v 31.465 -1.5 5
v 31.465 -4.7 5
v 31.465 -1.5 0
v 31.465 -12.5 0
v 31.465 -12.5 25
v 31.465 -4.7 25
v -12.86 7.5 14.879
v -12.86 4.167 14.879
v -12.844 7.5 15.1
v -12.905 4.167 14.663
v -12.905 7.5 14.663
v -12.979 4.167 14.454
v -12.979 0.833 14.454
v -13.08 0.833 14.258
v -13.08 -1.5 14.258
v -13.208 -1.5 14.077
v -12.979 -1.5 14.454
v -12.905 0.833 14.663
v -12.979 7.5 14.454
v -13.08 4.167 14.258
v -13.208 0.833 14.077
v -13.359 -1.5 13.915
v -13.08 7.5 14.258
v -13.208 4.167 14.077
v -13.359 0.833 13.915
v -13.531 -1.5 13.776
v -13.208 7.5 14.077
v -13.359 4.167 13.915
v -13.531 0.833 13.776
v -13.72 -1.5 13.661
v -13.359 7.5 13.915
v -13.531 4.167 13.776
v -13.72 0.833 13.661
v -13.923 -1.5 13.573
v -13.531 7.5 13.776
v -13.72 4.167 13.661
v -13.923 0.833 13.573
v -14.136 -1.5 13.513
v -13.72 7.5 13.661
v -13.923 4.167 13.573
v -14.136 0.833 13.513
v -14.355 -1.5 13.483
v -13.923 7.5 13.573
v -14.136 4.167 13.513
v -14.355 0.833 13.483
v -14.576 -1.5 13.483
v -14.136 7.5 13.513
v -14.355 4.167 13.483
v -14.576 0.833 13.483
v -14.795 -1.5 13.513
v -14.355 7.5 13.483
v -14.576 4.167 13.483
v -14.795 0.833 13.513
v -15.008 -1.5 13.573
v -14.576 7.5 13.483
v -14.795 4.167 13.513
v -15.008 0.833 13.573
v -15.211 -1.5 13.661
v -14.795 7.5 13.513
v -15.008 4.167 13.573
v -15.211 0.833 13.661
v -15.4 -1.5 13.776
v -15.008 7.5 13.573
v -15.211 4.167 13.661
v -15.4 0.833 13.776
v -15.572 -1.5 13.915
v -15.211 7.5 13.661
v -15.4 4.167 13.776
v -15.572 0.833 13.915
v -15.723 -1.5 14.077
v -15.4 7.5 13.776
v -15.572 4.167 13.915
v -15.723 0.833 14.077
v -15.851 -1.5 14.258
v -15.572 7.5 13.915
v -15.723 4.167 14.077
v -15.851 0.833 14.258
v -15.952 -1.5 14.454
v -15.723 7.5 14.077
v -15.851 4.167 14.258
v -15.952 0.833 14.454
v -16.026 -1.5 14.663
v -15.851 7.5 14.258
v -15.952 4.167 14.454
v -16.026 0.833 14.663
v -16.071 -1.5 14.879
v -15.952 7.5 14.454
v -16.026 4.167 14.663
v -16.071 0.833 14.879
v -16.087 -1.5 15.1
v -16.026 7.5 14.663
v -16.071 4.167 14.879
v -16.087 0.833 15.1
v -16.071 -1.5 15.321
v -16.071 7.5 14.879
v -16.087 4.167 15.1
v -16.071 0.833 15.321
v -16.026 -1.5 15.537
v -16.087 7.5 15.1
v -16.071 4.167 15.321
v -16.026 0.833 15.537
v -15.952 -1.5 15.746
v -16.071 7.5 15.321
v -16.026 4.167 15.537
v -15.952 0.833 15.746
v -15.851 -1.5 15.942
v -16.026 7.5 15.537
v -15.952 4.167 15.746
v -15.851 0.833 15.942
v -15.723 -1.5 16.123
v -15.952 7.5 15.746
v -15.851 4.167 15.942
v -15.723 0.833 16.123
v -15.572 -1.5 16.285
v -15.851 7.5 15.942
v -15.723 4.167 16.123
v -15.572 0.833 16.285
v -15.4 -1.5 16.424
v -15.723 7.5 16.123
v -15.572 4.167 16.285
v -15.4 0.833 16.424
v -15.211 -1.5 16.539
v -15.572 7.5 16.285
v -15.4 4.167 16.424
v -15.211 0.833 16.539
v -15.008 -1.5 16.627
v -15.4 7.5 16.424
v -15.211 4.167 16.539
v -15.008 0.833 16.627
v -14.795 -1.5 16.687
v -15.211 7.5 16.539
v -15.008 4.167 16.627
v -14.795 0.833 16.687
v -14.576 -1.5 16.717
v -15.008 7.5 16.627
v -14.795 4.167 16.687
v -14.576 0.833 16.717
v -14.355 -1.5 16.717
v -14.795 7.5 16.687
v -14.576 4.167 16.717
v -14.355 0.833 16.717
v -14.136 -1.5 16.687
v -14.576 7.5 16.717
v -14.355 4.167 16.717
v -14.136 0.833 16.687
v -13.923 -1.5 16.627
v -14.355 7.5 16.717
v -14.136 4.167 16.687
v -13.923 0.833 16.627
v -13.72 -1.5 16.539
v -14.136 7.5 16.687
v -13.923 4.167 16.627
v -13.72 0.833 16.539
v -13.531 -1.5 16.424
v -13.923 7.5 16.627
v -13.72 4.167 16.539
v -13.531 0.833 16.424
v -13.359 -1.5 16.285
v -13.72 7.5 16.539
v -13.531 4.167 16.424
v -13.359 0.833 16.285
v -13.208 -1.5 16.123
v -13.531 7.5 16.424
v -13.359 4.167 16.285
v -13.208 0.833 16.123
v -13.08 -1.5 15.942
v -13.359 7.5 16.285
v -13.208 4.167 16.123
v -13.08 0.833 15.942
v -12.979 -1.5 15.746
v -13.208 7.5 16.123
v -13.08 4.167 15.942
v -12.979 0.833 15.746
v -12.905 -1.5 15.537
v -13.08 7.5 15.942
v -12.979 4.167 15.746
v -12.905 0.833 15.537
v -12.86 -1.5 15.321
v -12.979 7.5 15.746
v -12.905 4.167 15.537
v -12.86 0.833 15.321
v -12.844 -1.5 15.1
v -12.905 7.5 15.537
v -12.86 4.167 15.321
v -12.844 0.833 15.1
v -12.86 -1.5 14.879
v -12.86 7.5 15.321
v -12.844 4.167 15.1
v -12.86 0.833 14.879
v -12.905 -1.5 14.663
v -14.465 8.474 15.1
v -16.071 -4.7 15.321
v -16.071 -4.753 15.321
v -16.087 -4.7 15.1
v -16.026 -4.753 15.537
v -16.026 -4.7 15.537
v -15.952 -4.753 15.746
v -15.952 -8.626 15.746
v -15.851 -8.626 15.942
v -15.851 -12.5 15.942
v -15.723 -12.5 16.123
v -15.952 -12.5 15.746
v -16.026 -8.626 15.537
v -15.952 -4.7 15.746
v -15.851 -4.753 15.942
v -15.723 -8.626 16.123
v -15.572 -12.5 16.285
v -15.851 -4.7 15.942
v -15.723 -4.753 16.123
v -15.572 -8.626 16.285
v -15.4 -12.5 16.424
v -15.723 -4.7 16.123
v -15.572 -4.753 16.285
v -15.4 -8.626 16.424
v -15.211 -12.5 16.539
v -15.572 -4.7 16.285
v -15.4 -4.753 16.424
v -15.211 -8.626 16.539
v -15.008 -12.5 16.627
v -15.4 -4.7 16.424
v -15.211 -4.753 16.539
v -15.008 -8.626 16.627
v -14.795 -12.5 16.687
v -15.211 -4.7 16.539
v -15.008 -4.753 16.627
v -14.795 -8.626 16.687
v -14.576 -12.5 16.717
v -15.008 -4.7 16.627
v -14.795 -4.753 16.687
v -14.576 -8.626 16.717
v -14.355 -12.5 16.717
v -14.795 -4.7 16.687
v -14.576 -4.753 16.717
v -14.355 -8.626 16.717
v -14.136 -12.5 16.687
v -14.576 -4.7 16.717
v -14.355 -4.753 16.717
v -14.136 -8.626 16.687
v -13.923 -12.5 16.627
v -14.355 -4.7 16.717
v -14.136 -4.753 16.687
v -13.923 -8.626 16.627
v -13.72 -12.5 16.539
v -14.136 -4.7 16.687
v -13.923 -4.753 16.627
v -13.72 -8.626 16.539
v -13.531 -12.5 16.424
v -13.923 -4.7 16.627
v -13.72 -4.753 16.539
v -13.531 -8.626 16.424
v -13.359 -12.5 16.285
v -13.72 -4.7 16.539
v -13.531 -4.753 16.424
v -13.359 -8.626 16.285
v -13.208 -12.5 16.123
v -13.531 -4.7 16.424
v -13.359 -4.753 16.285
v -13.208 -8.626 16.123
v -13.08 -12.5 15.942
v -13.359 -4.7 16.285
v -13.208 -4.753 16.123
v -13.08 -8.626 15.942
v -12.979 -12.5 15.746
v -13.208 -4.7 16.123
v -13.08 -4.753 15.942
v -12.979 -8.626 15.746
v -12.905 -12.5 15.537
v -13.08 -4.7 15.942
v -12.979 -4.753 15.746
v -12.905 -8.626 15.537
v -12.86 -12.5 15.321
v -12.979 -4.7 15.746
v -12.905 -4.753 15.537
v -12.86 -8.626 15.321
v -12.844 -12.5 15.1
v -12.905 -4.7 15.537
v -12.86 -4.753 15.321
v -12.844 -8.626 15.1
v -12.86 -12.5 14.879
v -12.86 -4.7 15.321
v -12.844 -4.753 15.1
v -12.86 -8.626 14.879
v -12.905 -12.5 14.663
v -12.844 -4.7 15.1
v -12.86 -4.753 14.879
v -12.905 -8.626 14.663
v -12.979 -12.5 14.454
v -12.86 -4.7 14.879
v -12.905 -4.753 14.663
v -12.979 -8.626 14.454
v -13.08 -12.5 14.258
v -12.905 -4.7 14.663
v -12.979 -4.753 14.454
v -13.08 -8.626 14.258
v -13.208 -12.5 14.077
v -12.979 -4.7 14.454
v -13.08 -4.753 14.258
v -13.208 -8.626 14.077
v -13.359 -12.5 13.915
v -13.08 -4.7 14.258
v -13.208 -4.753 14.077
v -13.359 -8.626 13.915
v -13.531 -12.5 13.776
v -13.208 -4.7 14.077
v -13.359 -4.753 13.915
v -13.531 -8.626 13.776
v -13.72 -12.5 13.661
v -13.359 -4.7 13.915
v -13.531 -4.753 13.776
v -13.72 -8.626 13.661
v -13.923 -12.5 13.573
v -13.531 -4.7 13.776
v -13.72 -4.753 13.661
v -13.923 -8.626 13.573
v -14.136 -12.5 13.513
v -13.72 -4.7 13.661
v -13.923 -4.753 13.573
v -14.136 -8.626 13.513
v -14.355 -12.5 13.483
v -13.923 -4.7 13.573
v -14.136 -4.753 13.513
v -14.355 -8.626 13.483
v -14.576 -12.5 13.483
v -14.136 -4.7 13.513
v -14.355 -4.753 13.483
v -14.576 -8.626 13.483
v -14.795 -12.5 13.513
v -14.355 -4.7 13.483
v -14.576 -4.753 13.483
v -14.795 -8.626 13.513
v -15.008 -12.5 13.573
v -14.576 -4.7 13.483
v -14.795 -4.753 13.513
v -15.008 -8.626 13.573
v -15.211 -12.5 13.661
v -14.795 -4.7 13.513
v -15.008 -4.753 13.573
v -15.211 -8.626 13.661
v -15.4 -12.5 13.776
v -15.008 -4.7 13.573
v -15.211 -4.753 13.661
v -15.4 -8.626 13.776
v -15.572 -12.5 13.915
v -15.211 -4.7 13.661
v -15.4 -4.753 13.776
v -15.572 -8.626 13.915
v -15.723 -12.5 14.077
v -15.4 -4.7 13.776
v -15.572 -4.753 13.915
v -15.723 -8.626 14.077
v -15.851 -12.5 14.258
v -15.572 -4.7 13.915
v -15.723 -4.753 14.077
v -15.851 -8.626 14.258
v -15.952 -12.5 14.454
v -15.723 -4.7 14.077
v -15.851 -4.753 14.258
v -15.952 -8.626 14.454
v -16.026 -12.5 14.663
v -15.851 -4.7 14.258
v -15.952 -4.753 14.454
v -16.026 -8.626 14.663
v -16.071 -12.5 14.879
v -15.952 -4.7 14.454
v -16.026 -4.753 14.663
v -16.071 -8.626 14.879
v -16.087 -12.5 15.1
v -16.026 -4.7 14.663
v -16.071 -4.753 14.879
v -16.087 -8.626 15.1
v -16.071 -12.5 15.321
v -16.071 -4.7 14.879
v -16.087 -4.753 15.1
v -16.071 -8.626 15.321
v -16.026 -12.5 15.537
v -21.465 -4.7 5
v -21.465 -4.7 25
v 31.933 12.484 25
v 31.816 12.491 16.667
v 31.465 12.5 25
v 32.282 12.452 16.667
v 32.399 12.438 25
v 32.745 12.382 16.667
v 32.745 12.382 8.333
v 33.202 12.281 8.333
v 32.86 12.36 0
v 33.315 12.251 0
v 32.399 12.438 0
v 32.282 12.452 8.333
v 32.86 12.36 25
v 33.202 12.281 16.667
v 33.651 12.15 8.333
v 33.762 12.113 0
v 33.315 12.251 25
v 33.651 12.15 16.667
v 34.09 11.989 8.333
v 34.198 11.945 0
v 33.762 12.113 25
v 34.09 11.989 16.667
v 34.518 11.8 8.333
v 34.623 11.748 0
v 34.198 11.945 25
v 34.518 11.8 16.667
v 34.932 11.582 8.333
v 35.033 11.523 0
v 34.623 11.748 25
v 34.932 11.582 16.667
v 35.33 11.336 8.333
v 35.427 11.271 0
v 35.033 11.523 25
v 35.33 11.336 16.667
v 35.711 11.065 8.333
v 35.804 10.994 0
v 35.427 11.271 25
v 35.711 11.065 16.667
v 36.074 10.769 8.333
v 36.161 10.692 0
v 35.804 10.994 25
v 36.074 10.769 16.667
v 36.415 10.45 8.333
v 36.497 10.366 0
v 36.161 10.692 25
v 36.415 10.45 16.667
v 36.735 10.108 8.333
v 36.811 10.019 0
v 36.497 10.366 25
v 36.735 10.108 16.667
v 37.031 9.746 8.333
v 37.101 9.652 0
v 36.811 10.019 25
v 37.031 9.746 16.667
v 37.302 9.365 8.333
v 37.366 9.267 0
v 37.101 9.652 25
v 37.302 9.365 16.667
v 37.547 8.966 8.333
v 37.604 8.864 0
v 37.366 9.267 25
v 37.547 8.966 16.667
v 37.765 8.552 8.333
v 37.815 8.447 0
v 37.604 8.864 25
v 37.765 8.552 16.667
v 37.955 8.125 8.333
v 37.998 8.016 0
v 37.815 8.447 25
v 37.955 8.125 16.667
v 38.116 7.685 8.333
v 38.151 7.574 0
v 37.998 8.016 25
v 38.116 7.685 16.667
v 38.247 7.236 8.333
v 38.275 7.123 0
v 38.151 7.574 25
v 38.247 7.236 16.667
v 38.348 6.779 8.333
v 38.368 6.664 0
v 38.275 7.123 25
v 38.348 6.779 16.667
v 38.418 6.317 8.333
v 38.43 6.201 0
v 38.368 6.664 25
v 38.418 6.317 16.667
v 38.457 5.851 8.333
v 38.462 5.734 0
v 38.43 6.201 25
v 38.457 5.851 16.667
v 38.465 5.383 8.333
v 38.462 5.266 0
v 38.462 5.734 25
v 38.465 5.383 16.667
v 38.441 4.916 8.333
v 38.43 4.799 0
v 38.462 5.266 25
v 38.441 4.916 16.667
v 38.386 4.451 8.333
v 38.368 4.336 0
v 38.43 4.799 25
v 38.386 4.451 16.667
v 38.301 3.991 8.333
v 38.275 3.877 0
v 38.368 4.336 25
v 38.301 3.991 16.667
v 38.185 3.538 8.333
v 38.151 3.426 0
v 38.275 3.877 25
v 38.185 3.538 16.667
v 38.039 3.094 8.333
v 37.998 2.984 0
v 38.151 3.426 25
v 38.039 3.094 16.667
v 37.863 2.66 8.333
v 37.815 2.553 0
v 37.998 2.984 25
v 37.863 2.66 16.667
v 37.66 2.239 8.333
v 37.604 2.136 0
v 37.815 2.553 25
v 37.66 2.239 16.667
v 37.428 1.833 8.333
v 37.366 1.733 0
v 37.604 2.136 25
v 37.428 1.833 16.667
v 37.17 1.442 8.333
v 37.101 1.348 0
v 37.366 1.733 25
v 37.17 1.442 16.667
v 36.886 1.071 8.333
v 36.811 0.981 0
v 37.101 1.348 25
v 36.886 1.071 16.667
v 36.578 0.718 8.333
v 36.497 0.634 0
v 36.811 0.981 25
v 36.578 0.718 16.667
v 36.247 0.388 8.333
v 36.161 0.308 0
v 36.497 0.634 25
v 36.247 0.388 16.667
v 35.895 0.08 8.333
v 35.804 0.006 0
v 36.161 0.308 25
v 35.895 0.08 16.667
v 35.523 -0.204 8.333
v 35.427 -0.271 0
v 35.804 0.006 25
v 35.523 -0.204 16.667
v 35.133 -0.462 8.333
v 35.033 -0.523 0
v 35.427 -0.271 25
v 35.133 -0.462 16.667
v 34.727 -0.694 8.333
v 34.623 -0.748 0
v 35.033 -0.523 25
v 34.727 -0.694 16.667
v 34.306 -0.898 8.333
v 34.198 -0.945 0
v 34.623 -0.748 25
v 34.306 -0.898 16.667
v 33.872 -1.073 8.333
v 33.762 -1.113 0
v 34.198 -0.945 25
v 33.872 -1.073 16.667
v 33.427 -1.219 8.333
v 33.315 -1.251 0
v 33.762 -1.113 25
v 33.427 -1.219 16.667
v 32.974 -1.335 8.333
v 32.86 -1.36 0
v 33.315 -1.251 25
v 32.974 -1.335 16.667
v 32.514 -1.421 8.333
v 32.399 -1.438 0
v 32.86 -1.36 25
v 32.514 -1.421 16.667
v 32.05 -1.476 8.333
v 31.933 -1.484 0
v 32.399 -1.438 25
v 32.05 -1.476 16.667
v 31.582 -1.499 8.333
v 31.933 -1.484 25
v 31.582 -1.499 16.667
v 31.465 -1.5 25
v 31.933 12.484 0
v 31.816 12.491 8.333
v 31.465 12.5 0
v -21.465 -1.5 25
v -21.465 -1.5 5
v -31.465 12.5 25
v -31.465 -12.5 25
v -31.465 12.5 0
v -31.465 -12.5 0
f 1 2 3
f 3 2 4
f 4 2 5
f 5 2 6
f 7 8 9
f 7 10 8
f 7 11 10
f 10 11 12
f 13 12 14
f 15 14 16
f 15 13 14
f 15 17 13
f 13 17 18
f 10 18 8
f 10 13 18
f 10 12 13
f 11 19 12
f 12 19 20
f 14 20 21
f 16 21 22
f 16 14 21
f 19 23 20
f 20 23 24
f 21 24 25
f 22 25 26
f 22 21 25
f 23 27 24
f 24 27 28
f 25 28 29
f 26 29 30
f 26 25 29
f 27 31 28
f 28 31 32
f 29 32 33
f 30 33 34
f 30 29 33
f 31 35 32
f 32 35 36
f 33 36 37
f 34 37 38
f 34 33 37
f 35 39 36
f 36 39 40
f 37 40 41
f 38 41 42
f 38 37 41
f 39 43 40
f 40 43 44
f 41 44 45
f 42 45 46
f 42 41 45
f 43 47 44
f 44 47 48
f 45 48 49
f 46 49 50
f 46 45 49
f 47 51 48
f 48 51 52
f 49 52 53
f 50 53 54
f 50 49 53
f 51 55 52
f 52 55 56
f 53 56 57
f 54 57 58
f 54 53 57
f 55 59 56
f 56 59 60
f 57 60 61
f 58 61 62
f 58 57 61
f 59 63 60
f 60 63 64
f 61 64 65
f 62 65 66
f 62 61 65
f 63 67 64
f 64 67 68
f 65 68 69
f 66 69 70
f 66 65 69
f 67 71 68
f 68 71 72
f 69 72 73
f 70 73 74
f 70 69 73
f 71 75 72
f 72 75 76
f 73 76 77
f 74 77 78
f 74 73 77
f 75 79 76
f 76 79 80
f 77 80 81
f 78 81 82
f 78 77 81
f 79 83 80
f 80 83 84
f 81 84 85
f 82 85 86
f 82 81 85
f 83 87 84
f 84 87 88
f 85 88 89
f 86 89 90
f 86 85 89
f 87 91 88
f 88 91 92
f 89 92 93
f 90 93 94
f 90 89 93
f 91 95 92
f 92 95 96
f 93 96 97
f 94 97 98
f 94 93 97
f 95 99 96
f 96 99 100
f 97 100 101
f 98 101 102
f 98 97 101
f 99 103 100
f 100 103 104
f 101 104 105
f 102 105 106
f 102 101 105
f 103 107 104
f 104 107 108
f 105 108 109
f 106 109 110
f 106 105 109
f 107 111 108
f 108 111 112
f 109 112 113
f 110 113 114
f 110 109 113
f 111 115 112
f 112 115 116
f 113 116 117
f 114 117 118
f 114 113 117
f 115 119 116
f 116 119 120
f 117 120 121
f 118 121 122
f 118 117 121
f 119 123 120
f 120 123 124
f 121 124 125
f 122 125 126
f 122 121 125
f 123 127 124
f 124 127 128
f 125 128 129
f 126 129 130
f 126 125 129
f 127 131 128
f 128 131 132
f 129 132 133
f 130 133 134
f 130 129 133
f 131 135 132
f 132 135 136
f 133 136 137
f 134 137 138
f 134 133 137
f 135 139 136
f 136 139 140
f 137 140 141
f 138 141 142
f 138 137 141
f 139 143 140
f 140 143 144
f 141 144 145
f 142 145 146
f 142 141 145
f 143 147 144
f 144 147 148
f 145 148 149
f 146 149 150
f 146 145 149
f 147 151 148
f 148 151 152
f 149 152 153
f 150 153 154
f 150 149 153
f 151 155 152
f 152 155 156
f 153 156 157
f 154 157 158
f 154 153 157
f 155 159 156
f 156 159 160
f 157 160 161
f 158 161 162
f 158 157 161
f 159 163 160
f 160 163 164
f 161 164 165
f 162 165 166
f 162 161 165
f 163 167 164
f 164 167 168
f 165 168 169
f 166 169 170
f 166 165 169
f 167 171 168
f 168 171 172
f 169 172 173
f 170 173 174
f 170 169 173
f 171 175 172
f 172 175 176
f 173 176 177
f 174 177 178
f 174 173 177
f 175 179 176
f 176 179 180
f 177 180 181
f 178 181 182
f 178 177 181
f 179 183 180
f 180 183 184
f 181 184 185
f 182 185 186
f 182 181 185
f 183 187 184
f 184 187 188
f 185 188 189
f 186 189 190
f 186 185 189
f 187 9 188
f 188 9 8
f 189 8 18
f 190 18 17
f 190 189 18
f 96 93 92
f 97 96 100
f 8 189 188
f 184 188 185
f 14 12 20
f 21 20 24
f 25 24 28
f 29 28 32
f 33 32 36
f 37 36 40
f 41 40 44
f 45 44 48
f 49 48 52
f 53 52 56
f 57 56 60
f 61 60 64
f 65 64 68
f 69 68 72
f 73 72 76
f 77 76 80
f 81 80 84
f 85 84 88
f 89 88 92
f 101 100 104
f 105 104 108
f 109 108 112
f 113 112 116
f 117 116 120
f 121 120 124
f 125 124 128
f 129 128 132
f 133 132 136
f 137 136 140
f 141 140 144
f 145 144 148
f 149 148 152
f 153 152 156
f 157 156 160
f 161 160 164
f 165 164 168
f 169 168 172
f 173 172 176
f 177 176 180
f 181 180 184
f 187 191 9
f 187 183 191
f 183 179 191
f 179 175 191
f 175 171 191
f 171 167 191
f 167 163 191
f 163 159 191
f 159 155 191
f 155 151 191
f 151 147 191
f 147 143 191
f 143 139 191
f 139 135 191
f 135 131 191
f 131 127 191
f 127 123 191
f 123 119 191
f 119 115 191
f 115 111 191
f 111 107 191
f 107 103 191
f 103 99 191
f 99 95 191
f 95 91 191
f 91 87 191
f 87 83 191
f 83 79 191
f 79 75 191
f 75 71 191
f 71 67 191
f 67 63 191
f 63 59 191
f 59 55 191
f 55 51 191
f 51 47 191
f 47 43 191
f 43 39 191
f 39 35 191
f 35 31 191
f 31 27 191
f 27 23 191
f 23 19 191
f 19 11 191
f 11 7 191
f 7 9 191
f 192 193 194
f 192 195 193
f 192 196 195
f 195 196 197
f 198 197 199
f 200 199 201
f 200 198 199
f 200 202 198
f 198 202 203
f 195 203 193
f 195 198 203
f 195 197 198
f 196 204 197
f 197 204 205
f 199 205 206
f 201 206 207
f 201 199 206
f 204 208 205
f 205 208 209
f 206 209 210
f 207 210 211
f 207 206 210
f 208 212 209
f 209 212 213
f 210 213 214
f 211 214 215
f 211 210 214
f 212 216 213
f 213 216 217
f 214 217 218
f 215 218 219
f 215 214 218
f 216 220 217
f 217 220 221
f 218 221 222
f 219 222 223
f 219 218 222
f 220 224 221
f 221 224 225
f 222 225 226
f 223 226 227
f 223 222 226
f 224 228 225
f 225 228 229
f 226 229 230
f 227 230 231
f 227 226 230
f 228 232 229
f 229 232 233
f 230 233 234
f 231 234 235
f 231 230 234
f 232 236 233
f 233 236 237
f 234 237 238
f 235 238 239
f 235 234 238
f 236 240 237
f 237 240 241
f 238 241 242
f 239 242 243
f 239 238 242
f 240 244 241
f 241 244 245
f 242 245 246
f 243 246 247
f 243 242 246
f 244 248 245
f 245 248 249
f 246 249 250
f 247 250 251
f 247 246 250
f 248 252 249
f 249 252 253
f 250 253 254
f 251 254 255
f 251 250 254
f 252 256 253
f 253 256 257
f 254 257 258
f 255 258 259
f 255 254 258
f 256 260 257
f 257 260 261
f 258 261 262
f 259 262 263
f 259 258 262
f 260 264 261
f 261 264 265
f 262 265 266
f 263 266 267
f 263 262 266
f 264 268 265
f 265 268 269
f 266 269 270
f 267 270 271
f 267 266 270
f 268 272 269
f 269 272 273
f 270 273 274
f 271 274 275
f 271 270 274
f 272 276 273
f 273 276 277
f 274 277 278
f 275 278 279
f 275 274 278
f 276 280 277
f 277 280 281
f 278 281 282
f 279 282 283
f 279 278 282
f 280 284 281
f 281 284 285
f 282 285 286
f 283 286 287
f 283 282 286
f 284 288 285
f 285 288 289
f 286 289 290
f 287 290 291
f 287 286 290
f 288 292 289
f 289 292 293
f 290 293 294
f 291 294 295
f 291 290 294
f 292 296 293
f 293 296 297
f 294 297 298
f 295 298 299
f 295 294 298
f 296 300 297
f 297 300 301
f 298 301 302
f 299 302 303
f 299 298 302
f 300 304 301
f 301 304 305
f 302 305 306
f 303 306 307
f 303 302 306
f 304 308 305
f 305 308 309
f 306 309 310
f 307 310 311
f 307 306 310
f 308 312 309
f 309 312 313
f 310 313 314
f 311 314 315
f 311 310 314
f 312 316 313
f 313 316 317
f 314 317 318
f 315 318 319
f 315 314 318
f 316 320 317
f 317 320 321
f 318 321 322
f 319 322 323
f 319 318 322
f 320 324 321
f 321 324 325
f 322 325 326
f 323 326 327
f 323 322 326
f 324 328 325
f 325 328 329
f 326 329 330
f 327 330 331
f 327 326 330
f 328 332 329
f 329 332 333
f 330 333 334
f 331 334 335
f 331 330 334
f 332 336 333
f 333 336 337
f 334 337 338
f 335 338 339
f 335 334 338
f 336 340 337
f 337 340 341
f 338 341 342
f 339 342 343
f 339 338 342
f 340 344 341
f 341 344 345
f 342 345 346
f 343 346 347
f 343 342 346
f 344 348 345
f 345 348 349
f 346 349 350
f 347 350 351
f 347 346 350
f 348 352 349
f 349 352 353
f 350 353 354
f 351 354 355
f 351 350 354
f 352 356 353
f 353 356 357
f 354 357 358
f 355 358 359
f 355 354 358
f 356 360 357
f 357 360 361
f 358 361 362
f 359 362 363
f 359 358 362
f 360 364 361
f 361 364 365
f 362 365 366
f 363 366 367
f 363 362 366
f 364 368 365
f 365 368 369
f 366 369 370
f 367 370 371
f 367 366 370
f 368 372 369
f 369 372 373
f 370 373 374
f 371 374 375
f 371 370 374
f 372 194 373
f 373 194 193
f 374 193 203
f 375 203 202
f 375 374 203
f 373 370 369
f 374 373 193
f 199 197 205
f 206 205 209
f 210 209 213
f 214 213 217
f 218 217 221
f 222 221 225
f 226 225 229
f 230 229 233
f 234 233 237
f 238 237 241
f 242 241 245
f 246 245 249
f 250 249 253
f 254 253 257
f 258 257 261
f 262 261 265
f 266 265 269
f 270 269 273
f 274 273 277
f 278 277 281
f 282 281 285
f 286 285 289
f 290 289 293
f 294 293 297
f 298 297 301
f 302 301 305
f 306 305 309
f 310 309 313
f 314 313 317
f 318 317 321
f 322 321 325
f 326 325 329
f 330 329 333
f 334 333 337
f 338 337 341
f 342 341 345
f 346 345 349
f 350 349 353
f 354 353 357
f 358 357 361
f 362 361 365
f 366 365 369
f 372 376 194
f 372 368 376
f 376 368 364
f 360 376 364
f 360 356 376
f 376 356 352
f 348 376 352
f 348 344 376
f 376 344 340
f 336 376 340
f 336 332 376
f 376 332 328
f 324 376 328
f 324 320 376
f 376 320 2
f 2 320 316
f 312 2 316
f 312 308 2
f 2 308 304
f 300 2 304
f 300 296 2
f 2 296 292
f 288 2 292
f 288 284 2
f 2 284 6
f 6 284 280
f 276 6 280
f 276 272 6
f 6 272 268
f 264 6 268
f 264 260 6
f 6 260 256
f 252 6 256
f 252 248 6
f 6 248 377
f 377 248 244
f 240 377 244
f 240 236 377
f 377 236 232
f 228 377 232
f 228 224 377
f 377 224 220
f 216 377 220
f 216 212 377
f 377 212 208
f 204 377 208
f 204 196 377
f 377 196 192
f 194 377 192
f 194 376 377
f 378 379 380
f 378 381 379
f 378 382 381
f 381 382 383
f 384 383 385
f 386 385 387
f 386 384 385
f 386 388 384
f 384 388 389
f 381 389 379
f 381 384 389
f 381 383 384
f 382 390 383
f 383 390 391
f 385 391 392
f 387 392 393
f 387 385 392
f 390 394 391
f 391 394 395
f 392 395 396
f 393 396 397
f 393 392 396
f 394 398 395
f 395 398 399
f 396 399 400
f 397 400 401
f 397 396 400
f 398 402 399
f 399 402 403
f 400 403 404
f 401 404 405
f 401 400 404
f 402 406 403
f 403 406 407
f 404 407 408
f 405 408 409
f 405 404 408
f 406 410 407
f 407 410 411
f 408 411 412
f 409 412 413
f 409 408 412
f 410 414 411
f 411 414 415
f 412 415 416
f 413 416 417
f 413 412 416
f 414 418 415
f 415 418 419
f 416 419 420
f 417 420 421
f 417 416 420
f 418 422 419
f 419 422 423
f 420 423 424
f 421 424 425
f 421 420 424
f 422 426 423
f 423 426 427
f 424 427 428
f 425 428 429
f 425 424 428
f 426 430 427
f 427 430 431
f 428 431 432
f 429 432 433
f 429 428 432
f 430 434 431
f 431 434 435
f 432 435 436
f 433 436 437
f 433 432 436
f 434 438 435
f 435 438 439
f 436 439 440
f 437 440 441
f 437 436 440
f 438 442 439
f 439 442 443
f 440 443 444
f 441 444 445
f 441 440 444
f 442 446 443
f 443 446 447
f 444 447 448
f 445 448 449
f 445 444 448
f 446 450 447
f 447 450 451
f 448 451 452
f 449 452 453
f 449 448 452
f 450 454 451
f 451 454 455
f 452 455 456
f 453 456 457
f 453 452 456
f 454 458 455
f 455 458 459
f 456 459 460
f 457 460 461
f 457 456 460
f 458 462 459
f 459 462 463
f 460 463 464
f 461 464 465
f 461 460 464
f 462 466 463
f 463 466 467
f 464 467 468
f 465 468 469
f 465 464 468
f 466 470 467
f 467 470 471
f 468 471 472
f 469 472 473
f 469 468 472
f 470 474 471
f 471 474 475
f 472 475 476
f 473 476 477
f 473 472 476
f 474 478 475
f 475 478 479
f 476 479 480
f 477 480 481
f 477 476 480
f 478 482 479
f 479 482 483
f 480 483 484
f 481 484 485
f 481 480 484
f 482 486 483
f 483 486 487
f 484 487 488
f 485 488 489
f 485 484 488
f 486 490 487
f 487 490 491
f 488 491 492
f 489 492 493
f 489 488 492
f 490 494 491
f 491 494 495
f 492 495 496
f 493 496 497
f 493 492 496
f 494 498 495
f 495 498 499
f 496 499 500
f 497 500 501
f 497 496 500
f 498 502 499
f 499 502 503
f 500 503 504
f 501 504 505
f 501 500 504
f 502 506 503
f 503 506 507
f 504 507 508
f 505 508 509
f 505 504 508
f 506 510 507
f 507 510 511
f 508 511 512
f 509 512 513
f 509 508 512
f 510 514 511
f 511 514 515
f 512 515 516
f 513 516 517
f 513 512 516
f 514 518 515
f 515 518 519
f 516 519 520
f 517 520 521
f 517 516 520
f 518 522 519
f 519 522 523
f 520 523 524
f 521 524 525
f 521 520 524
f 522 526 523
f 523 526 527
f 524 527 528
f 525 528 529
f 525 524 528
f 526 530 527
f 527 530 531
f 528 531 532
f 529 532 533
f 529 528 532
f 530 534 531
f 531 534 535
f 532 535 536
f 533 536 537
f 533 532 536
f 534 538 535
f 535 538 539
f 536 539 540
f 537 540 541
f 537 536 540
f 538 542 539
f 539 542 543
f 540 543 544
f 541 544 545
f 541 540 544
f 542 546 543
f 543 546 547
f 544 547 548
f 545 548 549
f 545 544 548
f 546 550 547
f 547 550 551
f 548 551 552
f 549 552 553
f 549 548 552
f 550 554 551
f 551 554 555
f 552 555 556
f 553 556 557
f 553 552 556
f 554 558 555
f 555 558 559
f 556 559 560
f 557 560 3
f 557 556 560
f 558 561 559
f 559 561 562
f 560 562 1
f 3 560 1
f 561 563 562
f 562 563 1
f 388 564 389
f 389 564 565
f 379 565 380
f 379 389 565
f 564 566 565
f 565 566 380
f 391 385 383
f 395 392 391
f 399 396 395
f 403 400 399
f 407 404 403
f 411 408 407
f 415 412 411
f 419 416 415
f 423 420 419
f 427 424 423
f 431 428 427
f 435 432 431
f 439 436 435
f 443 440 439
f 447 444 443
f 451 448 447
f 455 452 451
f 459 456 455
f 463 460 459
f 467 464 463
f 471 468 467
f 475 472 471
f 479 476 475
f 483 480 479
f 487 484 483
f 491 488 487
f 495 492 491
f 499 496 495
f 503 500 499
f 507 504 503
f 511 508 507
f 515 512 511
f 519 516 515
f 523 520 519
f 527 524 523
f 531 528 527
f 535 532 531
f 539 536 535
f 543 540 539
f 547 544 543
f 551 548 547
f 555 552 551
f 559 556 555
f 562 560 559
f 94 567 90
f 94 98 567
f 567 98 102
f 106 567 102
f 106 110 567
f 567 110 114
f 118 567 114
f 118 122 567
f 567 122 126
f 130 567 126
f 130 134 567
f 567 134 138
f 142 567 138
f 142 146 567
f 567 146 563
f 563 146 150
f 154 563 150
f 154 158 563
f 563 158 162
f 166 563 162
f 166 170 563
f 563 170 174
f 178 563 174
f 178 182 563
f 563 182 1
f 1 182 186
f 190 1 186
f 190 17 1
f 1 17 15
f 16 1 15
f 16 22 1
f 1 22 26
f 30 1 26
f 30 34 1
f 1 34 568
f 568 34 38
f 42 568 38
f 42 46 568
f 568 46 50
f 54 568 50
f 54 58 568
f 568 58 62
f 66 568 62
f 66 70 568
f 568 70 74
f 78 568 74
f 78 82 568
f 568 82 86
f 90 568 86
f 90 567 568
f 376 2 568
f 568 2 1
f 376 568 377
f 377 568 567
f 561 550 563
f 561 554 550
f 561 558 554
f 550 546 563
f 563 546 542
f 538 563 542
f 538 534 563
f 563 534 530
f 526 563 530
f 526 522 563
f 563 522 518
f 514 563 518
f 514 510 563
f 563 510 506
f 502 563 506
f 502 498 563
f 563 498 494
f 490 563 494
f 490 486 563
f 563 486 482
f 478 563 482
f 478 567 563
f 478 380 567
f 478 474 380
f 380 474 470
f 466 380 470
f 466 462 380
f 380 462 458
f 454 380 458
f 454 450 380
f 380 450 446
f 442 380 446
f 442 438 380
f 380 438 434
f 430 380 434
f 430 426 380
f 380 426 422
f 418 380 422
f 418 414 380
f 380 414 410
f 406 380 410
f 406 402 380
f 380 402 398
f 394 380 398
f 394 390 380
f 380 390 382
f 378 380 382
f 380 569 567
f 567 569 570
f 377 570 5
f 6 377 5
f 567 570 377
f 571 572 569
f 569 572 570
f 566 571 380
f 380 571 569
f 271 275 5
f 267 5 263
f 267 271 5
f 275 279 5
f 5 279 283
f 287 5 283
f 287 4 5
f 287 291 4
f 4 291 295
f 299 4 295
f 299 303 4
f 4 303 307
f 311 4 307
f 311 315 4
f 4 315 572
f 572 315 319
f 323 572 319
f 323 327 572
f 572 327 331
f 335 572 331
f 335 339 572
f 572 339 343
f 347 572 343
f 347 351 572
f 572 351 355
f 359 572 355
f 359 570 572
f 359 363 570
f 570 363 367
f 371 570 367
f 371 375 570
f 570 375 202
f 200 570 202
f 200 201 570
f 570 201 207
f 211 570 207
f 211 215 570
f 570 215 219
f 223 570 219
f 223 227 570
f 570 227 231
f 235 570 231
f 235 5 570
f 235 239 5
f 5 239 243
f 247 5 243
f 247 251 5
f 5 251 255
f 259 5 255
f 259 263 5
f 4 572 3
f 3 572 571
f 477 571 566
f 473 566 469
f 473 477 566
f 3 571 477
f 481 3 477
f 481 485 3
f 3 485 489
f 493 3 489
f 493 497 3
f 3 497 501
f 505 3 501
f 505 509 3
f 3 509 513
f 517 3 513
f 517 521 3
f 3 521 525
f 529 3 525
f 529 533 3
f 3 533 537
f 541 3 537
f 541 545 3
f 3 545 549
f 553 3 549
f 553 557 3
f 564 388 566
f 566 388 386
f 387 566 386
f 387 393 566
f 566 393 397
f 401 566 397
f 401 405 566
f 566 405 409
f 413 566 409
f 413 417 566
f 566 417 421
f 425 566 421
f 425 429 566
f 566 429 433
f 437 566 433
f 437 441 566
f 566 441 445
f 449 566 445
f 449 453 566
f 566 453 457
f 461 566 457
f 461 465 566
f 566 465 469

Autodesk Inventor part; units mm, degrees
ref_plane "YZ Plane" through (0, 0, 0) normal (1, 0, 0) x (0, 1, 0)
ref_plane "XZ Plane" through (0, 0, 0) normal (0, 1, 0) x (-1, 0, 0)
ref_plane "XY Plane" through (0, 0, 0) normal (0, 0, 1) x (1, 0, 0)
sketch "Skizze8" plane through (0, 0, 0) normal (0, 0, 1) x (1, 0, 0)
  line L0 (-31.4655, -12.5) -> (31.4655, -12.5)
  line L1 (31.4655, -12.5) -> (31.4655, 12.5)
  line L2 (31.4655, 12.5) -> (-31.4655, 12.5)
  line L3 (-31.4655, 12.5) -> (-31.4655, -12.5)
  line L4 (-31.4655, -12.5) -> (31.4655, 12.5) construction
  line L5 (31.4655, -12.5) -> (-31.4655, 12.5) construction
  point P0 (0, 0)
  dimension "d28" = 62.931
  dimension "d29" = 25
extrude "Extrusion7" add sketch "Skizze8" along normal blind 5
sketch "Skizze9" plane through (0, 0, 5) normal (0, 0, 1) x (1, 0, 0)
  line L0 (31.4655, 12.5) -> (-31.4655, 12.5) projected
  line L1 (-31.4655, 12.5) -> (-31.4655, -12.5) projected
  line L2 (-31.4655, -12.5) -> (-21.4655, -12.5)
  line L3 (-21.4655, -12.5) -> (-21.4655, 12.5)
  line L4 (-21.4655, 12.5) -> (-31.4655, 12.5)
  line L5 (-31.4655, 12.5) -> (-31.4655, -12.5)
  point P0 (0, 0)
  dimension "d32" = 10
extrude "Extrusion8" add sketch "Skizze9" along normal blind 20
sketch "Skizze10" plane through (0, 0, 5) normal (0, 0, 1) x (1, 0, 0)
  line L0 (-21.4655, 12.5) -> (38.4655, 12.5)
  line L1 (38.4655, 12.5) -> (38.4655, -1.5)
  line L2 (38.4655, -1.5) -> (-21.4655, -1.5)
  line L3 (-21.4655, -1.5) -> (-21.4655, 12.5)
  point P0 (0, 0)
  dimension "d35" = 59.931
  dimension "d36" = 14
extrude "Extrusion9" add sketch "Skizze10" along normal blind 20
fillet "Rundung4" radius 7 2 edges at (38.4655, 12.5, 15) (38.4655, -1.5, 15)
sketch "Skizze11" plane through (0, 0, 5) normal (0, 0, 1) x (1, 0, 0)
  line L0 (31.4655, -12.5) -> (31.4655, -1.5) projected
  line L1 (-21.4655, -12.5) -> (31.4655, -12.5)
  line L2 (31.4655, -12.5) -> (31.4655, -4.7)
  line L3 (31.4655, -4.7) -> (-21.4655, -4.7)
  line L4 (-21.4655, -4.7) -> (-21.4655, -12.5)
  point P0 (0, 0)
  dimension "d40" = 7.8
extrude "Extrusion10" add sketch "Skizze11" along normal blind 20
sketch "Skizze12" plane through (-31.4655, -12.5, 0) normal (0, -1, 0) x (1, 0, 0)
  line L0 (0, 25) -> (62.931, 25) projected
  line L1 (10, 25) -> (10, 5) projected
  point P0 (31.4655, 0)
  point P1 (17, 15.1)
  dimension "d43" = 7
  dimension "d44" = 9.9
hole "Bohrung1" at (-14.4655, -12.5, 15.1) direction (0, 1, 0) diameter 3.242 depth 20 tip angle 118 thread size "M4x0.7" class "6H" standard "ANSI Metric M Profile"
sketch "Skizze13" plane through (0, 0, 5) normal (0, 0, -1) x (-1, 0, 0)
  arc A0 (-31.4655, 12.5) -> (-31.4655, -1.5) centre (-31.4655, 5.5) ccw projected
  line L0 (-31.4655, -1.5) -> (-31.4655, 12.5) projected
  line L1 (-31.4655, -12.5) -> (-31.4655, 12.5) projected
  point P0 (0, 0)
extrude "Extrusion11" add sketch "Skizze13" along normal blind 5
properties part number "Standard (DIN)"
